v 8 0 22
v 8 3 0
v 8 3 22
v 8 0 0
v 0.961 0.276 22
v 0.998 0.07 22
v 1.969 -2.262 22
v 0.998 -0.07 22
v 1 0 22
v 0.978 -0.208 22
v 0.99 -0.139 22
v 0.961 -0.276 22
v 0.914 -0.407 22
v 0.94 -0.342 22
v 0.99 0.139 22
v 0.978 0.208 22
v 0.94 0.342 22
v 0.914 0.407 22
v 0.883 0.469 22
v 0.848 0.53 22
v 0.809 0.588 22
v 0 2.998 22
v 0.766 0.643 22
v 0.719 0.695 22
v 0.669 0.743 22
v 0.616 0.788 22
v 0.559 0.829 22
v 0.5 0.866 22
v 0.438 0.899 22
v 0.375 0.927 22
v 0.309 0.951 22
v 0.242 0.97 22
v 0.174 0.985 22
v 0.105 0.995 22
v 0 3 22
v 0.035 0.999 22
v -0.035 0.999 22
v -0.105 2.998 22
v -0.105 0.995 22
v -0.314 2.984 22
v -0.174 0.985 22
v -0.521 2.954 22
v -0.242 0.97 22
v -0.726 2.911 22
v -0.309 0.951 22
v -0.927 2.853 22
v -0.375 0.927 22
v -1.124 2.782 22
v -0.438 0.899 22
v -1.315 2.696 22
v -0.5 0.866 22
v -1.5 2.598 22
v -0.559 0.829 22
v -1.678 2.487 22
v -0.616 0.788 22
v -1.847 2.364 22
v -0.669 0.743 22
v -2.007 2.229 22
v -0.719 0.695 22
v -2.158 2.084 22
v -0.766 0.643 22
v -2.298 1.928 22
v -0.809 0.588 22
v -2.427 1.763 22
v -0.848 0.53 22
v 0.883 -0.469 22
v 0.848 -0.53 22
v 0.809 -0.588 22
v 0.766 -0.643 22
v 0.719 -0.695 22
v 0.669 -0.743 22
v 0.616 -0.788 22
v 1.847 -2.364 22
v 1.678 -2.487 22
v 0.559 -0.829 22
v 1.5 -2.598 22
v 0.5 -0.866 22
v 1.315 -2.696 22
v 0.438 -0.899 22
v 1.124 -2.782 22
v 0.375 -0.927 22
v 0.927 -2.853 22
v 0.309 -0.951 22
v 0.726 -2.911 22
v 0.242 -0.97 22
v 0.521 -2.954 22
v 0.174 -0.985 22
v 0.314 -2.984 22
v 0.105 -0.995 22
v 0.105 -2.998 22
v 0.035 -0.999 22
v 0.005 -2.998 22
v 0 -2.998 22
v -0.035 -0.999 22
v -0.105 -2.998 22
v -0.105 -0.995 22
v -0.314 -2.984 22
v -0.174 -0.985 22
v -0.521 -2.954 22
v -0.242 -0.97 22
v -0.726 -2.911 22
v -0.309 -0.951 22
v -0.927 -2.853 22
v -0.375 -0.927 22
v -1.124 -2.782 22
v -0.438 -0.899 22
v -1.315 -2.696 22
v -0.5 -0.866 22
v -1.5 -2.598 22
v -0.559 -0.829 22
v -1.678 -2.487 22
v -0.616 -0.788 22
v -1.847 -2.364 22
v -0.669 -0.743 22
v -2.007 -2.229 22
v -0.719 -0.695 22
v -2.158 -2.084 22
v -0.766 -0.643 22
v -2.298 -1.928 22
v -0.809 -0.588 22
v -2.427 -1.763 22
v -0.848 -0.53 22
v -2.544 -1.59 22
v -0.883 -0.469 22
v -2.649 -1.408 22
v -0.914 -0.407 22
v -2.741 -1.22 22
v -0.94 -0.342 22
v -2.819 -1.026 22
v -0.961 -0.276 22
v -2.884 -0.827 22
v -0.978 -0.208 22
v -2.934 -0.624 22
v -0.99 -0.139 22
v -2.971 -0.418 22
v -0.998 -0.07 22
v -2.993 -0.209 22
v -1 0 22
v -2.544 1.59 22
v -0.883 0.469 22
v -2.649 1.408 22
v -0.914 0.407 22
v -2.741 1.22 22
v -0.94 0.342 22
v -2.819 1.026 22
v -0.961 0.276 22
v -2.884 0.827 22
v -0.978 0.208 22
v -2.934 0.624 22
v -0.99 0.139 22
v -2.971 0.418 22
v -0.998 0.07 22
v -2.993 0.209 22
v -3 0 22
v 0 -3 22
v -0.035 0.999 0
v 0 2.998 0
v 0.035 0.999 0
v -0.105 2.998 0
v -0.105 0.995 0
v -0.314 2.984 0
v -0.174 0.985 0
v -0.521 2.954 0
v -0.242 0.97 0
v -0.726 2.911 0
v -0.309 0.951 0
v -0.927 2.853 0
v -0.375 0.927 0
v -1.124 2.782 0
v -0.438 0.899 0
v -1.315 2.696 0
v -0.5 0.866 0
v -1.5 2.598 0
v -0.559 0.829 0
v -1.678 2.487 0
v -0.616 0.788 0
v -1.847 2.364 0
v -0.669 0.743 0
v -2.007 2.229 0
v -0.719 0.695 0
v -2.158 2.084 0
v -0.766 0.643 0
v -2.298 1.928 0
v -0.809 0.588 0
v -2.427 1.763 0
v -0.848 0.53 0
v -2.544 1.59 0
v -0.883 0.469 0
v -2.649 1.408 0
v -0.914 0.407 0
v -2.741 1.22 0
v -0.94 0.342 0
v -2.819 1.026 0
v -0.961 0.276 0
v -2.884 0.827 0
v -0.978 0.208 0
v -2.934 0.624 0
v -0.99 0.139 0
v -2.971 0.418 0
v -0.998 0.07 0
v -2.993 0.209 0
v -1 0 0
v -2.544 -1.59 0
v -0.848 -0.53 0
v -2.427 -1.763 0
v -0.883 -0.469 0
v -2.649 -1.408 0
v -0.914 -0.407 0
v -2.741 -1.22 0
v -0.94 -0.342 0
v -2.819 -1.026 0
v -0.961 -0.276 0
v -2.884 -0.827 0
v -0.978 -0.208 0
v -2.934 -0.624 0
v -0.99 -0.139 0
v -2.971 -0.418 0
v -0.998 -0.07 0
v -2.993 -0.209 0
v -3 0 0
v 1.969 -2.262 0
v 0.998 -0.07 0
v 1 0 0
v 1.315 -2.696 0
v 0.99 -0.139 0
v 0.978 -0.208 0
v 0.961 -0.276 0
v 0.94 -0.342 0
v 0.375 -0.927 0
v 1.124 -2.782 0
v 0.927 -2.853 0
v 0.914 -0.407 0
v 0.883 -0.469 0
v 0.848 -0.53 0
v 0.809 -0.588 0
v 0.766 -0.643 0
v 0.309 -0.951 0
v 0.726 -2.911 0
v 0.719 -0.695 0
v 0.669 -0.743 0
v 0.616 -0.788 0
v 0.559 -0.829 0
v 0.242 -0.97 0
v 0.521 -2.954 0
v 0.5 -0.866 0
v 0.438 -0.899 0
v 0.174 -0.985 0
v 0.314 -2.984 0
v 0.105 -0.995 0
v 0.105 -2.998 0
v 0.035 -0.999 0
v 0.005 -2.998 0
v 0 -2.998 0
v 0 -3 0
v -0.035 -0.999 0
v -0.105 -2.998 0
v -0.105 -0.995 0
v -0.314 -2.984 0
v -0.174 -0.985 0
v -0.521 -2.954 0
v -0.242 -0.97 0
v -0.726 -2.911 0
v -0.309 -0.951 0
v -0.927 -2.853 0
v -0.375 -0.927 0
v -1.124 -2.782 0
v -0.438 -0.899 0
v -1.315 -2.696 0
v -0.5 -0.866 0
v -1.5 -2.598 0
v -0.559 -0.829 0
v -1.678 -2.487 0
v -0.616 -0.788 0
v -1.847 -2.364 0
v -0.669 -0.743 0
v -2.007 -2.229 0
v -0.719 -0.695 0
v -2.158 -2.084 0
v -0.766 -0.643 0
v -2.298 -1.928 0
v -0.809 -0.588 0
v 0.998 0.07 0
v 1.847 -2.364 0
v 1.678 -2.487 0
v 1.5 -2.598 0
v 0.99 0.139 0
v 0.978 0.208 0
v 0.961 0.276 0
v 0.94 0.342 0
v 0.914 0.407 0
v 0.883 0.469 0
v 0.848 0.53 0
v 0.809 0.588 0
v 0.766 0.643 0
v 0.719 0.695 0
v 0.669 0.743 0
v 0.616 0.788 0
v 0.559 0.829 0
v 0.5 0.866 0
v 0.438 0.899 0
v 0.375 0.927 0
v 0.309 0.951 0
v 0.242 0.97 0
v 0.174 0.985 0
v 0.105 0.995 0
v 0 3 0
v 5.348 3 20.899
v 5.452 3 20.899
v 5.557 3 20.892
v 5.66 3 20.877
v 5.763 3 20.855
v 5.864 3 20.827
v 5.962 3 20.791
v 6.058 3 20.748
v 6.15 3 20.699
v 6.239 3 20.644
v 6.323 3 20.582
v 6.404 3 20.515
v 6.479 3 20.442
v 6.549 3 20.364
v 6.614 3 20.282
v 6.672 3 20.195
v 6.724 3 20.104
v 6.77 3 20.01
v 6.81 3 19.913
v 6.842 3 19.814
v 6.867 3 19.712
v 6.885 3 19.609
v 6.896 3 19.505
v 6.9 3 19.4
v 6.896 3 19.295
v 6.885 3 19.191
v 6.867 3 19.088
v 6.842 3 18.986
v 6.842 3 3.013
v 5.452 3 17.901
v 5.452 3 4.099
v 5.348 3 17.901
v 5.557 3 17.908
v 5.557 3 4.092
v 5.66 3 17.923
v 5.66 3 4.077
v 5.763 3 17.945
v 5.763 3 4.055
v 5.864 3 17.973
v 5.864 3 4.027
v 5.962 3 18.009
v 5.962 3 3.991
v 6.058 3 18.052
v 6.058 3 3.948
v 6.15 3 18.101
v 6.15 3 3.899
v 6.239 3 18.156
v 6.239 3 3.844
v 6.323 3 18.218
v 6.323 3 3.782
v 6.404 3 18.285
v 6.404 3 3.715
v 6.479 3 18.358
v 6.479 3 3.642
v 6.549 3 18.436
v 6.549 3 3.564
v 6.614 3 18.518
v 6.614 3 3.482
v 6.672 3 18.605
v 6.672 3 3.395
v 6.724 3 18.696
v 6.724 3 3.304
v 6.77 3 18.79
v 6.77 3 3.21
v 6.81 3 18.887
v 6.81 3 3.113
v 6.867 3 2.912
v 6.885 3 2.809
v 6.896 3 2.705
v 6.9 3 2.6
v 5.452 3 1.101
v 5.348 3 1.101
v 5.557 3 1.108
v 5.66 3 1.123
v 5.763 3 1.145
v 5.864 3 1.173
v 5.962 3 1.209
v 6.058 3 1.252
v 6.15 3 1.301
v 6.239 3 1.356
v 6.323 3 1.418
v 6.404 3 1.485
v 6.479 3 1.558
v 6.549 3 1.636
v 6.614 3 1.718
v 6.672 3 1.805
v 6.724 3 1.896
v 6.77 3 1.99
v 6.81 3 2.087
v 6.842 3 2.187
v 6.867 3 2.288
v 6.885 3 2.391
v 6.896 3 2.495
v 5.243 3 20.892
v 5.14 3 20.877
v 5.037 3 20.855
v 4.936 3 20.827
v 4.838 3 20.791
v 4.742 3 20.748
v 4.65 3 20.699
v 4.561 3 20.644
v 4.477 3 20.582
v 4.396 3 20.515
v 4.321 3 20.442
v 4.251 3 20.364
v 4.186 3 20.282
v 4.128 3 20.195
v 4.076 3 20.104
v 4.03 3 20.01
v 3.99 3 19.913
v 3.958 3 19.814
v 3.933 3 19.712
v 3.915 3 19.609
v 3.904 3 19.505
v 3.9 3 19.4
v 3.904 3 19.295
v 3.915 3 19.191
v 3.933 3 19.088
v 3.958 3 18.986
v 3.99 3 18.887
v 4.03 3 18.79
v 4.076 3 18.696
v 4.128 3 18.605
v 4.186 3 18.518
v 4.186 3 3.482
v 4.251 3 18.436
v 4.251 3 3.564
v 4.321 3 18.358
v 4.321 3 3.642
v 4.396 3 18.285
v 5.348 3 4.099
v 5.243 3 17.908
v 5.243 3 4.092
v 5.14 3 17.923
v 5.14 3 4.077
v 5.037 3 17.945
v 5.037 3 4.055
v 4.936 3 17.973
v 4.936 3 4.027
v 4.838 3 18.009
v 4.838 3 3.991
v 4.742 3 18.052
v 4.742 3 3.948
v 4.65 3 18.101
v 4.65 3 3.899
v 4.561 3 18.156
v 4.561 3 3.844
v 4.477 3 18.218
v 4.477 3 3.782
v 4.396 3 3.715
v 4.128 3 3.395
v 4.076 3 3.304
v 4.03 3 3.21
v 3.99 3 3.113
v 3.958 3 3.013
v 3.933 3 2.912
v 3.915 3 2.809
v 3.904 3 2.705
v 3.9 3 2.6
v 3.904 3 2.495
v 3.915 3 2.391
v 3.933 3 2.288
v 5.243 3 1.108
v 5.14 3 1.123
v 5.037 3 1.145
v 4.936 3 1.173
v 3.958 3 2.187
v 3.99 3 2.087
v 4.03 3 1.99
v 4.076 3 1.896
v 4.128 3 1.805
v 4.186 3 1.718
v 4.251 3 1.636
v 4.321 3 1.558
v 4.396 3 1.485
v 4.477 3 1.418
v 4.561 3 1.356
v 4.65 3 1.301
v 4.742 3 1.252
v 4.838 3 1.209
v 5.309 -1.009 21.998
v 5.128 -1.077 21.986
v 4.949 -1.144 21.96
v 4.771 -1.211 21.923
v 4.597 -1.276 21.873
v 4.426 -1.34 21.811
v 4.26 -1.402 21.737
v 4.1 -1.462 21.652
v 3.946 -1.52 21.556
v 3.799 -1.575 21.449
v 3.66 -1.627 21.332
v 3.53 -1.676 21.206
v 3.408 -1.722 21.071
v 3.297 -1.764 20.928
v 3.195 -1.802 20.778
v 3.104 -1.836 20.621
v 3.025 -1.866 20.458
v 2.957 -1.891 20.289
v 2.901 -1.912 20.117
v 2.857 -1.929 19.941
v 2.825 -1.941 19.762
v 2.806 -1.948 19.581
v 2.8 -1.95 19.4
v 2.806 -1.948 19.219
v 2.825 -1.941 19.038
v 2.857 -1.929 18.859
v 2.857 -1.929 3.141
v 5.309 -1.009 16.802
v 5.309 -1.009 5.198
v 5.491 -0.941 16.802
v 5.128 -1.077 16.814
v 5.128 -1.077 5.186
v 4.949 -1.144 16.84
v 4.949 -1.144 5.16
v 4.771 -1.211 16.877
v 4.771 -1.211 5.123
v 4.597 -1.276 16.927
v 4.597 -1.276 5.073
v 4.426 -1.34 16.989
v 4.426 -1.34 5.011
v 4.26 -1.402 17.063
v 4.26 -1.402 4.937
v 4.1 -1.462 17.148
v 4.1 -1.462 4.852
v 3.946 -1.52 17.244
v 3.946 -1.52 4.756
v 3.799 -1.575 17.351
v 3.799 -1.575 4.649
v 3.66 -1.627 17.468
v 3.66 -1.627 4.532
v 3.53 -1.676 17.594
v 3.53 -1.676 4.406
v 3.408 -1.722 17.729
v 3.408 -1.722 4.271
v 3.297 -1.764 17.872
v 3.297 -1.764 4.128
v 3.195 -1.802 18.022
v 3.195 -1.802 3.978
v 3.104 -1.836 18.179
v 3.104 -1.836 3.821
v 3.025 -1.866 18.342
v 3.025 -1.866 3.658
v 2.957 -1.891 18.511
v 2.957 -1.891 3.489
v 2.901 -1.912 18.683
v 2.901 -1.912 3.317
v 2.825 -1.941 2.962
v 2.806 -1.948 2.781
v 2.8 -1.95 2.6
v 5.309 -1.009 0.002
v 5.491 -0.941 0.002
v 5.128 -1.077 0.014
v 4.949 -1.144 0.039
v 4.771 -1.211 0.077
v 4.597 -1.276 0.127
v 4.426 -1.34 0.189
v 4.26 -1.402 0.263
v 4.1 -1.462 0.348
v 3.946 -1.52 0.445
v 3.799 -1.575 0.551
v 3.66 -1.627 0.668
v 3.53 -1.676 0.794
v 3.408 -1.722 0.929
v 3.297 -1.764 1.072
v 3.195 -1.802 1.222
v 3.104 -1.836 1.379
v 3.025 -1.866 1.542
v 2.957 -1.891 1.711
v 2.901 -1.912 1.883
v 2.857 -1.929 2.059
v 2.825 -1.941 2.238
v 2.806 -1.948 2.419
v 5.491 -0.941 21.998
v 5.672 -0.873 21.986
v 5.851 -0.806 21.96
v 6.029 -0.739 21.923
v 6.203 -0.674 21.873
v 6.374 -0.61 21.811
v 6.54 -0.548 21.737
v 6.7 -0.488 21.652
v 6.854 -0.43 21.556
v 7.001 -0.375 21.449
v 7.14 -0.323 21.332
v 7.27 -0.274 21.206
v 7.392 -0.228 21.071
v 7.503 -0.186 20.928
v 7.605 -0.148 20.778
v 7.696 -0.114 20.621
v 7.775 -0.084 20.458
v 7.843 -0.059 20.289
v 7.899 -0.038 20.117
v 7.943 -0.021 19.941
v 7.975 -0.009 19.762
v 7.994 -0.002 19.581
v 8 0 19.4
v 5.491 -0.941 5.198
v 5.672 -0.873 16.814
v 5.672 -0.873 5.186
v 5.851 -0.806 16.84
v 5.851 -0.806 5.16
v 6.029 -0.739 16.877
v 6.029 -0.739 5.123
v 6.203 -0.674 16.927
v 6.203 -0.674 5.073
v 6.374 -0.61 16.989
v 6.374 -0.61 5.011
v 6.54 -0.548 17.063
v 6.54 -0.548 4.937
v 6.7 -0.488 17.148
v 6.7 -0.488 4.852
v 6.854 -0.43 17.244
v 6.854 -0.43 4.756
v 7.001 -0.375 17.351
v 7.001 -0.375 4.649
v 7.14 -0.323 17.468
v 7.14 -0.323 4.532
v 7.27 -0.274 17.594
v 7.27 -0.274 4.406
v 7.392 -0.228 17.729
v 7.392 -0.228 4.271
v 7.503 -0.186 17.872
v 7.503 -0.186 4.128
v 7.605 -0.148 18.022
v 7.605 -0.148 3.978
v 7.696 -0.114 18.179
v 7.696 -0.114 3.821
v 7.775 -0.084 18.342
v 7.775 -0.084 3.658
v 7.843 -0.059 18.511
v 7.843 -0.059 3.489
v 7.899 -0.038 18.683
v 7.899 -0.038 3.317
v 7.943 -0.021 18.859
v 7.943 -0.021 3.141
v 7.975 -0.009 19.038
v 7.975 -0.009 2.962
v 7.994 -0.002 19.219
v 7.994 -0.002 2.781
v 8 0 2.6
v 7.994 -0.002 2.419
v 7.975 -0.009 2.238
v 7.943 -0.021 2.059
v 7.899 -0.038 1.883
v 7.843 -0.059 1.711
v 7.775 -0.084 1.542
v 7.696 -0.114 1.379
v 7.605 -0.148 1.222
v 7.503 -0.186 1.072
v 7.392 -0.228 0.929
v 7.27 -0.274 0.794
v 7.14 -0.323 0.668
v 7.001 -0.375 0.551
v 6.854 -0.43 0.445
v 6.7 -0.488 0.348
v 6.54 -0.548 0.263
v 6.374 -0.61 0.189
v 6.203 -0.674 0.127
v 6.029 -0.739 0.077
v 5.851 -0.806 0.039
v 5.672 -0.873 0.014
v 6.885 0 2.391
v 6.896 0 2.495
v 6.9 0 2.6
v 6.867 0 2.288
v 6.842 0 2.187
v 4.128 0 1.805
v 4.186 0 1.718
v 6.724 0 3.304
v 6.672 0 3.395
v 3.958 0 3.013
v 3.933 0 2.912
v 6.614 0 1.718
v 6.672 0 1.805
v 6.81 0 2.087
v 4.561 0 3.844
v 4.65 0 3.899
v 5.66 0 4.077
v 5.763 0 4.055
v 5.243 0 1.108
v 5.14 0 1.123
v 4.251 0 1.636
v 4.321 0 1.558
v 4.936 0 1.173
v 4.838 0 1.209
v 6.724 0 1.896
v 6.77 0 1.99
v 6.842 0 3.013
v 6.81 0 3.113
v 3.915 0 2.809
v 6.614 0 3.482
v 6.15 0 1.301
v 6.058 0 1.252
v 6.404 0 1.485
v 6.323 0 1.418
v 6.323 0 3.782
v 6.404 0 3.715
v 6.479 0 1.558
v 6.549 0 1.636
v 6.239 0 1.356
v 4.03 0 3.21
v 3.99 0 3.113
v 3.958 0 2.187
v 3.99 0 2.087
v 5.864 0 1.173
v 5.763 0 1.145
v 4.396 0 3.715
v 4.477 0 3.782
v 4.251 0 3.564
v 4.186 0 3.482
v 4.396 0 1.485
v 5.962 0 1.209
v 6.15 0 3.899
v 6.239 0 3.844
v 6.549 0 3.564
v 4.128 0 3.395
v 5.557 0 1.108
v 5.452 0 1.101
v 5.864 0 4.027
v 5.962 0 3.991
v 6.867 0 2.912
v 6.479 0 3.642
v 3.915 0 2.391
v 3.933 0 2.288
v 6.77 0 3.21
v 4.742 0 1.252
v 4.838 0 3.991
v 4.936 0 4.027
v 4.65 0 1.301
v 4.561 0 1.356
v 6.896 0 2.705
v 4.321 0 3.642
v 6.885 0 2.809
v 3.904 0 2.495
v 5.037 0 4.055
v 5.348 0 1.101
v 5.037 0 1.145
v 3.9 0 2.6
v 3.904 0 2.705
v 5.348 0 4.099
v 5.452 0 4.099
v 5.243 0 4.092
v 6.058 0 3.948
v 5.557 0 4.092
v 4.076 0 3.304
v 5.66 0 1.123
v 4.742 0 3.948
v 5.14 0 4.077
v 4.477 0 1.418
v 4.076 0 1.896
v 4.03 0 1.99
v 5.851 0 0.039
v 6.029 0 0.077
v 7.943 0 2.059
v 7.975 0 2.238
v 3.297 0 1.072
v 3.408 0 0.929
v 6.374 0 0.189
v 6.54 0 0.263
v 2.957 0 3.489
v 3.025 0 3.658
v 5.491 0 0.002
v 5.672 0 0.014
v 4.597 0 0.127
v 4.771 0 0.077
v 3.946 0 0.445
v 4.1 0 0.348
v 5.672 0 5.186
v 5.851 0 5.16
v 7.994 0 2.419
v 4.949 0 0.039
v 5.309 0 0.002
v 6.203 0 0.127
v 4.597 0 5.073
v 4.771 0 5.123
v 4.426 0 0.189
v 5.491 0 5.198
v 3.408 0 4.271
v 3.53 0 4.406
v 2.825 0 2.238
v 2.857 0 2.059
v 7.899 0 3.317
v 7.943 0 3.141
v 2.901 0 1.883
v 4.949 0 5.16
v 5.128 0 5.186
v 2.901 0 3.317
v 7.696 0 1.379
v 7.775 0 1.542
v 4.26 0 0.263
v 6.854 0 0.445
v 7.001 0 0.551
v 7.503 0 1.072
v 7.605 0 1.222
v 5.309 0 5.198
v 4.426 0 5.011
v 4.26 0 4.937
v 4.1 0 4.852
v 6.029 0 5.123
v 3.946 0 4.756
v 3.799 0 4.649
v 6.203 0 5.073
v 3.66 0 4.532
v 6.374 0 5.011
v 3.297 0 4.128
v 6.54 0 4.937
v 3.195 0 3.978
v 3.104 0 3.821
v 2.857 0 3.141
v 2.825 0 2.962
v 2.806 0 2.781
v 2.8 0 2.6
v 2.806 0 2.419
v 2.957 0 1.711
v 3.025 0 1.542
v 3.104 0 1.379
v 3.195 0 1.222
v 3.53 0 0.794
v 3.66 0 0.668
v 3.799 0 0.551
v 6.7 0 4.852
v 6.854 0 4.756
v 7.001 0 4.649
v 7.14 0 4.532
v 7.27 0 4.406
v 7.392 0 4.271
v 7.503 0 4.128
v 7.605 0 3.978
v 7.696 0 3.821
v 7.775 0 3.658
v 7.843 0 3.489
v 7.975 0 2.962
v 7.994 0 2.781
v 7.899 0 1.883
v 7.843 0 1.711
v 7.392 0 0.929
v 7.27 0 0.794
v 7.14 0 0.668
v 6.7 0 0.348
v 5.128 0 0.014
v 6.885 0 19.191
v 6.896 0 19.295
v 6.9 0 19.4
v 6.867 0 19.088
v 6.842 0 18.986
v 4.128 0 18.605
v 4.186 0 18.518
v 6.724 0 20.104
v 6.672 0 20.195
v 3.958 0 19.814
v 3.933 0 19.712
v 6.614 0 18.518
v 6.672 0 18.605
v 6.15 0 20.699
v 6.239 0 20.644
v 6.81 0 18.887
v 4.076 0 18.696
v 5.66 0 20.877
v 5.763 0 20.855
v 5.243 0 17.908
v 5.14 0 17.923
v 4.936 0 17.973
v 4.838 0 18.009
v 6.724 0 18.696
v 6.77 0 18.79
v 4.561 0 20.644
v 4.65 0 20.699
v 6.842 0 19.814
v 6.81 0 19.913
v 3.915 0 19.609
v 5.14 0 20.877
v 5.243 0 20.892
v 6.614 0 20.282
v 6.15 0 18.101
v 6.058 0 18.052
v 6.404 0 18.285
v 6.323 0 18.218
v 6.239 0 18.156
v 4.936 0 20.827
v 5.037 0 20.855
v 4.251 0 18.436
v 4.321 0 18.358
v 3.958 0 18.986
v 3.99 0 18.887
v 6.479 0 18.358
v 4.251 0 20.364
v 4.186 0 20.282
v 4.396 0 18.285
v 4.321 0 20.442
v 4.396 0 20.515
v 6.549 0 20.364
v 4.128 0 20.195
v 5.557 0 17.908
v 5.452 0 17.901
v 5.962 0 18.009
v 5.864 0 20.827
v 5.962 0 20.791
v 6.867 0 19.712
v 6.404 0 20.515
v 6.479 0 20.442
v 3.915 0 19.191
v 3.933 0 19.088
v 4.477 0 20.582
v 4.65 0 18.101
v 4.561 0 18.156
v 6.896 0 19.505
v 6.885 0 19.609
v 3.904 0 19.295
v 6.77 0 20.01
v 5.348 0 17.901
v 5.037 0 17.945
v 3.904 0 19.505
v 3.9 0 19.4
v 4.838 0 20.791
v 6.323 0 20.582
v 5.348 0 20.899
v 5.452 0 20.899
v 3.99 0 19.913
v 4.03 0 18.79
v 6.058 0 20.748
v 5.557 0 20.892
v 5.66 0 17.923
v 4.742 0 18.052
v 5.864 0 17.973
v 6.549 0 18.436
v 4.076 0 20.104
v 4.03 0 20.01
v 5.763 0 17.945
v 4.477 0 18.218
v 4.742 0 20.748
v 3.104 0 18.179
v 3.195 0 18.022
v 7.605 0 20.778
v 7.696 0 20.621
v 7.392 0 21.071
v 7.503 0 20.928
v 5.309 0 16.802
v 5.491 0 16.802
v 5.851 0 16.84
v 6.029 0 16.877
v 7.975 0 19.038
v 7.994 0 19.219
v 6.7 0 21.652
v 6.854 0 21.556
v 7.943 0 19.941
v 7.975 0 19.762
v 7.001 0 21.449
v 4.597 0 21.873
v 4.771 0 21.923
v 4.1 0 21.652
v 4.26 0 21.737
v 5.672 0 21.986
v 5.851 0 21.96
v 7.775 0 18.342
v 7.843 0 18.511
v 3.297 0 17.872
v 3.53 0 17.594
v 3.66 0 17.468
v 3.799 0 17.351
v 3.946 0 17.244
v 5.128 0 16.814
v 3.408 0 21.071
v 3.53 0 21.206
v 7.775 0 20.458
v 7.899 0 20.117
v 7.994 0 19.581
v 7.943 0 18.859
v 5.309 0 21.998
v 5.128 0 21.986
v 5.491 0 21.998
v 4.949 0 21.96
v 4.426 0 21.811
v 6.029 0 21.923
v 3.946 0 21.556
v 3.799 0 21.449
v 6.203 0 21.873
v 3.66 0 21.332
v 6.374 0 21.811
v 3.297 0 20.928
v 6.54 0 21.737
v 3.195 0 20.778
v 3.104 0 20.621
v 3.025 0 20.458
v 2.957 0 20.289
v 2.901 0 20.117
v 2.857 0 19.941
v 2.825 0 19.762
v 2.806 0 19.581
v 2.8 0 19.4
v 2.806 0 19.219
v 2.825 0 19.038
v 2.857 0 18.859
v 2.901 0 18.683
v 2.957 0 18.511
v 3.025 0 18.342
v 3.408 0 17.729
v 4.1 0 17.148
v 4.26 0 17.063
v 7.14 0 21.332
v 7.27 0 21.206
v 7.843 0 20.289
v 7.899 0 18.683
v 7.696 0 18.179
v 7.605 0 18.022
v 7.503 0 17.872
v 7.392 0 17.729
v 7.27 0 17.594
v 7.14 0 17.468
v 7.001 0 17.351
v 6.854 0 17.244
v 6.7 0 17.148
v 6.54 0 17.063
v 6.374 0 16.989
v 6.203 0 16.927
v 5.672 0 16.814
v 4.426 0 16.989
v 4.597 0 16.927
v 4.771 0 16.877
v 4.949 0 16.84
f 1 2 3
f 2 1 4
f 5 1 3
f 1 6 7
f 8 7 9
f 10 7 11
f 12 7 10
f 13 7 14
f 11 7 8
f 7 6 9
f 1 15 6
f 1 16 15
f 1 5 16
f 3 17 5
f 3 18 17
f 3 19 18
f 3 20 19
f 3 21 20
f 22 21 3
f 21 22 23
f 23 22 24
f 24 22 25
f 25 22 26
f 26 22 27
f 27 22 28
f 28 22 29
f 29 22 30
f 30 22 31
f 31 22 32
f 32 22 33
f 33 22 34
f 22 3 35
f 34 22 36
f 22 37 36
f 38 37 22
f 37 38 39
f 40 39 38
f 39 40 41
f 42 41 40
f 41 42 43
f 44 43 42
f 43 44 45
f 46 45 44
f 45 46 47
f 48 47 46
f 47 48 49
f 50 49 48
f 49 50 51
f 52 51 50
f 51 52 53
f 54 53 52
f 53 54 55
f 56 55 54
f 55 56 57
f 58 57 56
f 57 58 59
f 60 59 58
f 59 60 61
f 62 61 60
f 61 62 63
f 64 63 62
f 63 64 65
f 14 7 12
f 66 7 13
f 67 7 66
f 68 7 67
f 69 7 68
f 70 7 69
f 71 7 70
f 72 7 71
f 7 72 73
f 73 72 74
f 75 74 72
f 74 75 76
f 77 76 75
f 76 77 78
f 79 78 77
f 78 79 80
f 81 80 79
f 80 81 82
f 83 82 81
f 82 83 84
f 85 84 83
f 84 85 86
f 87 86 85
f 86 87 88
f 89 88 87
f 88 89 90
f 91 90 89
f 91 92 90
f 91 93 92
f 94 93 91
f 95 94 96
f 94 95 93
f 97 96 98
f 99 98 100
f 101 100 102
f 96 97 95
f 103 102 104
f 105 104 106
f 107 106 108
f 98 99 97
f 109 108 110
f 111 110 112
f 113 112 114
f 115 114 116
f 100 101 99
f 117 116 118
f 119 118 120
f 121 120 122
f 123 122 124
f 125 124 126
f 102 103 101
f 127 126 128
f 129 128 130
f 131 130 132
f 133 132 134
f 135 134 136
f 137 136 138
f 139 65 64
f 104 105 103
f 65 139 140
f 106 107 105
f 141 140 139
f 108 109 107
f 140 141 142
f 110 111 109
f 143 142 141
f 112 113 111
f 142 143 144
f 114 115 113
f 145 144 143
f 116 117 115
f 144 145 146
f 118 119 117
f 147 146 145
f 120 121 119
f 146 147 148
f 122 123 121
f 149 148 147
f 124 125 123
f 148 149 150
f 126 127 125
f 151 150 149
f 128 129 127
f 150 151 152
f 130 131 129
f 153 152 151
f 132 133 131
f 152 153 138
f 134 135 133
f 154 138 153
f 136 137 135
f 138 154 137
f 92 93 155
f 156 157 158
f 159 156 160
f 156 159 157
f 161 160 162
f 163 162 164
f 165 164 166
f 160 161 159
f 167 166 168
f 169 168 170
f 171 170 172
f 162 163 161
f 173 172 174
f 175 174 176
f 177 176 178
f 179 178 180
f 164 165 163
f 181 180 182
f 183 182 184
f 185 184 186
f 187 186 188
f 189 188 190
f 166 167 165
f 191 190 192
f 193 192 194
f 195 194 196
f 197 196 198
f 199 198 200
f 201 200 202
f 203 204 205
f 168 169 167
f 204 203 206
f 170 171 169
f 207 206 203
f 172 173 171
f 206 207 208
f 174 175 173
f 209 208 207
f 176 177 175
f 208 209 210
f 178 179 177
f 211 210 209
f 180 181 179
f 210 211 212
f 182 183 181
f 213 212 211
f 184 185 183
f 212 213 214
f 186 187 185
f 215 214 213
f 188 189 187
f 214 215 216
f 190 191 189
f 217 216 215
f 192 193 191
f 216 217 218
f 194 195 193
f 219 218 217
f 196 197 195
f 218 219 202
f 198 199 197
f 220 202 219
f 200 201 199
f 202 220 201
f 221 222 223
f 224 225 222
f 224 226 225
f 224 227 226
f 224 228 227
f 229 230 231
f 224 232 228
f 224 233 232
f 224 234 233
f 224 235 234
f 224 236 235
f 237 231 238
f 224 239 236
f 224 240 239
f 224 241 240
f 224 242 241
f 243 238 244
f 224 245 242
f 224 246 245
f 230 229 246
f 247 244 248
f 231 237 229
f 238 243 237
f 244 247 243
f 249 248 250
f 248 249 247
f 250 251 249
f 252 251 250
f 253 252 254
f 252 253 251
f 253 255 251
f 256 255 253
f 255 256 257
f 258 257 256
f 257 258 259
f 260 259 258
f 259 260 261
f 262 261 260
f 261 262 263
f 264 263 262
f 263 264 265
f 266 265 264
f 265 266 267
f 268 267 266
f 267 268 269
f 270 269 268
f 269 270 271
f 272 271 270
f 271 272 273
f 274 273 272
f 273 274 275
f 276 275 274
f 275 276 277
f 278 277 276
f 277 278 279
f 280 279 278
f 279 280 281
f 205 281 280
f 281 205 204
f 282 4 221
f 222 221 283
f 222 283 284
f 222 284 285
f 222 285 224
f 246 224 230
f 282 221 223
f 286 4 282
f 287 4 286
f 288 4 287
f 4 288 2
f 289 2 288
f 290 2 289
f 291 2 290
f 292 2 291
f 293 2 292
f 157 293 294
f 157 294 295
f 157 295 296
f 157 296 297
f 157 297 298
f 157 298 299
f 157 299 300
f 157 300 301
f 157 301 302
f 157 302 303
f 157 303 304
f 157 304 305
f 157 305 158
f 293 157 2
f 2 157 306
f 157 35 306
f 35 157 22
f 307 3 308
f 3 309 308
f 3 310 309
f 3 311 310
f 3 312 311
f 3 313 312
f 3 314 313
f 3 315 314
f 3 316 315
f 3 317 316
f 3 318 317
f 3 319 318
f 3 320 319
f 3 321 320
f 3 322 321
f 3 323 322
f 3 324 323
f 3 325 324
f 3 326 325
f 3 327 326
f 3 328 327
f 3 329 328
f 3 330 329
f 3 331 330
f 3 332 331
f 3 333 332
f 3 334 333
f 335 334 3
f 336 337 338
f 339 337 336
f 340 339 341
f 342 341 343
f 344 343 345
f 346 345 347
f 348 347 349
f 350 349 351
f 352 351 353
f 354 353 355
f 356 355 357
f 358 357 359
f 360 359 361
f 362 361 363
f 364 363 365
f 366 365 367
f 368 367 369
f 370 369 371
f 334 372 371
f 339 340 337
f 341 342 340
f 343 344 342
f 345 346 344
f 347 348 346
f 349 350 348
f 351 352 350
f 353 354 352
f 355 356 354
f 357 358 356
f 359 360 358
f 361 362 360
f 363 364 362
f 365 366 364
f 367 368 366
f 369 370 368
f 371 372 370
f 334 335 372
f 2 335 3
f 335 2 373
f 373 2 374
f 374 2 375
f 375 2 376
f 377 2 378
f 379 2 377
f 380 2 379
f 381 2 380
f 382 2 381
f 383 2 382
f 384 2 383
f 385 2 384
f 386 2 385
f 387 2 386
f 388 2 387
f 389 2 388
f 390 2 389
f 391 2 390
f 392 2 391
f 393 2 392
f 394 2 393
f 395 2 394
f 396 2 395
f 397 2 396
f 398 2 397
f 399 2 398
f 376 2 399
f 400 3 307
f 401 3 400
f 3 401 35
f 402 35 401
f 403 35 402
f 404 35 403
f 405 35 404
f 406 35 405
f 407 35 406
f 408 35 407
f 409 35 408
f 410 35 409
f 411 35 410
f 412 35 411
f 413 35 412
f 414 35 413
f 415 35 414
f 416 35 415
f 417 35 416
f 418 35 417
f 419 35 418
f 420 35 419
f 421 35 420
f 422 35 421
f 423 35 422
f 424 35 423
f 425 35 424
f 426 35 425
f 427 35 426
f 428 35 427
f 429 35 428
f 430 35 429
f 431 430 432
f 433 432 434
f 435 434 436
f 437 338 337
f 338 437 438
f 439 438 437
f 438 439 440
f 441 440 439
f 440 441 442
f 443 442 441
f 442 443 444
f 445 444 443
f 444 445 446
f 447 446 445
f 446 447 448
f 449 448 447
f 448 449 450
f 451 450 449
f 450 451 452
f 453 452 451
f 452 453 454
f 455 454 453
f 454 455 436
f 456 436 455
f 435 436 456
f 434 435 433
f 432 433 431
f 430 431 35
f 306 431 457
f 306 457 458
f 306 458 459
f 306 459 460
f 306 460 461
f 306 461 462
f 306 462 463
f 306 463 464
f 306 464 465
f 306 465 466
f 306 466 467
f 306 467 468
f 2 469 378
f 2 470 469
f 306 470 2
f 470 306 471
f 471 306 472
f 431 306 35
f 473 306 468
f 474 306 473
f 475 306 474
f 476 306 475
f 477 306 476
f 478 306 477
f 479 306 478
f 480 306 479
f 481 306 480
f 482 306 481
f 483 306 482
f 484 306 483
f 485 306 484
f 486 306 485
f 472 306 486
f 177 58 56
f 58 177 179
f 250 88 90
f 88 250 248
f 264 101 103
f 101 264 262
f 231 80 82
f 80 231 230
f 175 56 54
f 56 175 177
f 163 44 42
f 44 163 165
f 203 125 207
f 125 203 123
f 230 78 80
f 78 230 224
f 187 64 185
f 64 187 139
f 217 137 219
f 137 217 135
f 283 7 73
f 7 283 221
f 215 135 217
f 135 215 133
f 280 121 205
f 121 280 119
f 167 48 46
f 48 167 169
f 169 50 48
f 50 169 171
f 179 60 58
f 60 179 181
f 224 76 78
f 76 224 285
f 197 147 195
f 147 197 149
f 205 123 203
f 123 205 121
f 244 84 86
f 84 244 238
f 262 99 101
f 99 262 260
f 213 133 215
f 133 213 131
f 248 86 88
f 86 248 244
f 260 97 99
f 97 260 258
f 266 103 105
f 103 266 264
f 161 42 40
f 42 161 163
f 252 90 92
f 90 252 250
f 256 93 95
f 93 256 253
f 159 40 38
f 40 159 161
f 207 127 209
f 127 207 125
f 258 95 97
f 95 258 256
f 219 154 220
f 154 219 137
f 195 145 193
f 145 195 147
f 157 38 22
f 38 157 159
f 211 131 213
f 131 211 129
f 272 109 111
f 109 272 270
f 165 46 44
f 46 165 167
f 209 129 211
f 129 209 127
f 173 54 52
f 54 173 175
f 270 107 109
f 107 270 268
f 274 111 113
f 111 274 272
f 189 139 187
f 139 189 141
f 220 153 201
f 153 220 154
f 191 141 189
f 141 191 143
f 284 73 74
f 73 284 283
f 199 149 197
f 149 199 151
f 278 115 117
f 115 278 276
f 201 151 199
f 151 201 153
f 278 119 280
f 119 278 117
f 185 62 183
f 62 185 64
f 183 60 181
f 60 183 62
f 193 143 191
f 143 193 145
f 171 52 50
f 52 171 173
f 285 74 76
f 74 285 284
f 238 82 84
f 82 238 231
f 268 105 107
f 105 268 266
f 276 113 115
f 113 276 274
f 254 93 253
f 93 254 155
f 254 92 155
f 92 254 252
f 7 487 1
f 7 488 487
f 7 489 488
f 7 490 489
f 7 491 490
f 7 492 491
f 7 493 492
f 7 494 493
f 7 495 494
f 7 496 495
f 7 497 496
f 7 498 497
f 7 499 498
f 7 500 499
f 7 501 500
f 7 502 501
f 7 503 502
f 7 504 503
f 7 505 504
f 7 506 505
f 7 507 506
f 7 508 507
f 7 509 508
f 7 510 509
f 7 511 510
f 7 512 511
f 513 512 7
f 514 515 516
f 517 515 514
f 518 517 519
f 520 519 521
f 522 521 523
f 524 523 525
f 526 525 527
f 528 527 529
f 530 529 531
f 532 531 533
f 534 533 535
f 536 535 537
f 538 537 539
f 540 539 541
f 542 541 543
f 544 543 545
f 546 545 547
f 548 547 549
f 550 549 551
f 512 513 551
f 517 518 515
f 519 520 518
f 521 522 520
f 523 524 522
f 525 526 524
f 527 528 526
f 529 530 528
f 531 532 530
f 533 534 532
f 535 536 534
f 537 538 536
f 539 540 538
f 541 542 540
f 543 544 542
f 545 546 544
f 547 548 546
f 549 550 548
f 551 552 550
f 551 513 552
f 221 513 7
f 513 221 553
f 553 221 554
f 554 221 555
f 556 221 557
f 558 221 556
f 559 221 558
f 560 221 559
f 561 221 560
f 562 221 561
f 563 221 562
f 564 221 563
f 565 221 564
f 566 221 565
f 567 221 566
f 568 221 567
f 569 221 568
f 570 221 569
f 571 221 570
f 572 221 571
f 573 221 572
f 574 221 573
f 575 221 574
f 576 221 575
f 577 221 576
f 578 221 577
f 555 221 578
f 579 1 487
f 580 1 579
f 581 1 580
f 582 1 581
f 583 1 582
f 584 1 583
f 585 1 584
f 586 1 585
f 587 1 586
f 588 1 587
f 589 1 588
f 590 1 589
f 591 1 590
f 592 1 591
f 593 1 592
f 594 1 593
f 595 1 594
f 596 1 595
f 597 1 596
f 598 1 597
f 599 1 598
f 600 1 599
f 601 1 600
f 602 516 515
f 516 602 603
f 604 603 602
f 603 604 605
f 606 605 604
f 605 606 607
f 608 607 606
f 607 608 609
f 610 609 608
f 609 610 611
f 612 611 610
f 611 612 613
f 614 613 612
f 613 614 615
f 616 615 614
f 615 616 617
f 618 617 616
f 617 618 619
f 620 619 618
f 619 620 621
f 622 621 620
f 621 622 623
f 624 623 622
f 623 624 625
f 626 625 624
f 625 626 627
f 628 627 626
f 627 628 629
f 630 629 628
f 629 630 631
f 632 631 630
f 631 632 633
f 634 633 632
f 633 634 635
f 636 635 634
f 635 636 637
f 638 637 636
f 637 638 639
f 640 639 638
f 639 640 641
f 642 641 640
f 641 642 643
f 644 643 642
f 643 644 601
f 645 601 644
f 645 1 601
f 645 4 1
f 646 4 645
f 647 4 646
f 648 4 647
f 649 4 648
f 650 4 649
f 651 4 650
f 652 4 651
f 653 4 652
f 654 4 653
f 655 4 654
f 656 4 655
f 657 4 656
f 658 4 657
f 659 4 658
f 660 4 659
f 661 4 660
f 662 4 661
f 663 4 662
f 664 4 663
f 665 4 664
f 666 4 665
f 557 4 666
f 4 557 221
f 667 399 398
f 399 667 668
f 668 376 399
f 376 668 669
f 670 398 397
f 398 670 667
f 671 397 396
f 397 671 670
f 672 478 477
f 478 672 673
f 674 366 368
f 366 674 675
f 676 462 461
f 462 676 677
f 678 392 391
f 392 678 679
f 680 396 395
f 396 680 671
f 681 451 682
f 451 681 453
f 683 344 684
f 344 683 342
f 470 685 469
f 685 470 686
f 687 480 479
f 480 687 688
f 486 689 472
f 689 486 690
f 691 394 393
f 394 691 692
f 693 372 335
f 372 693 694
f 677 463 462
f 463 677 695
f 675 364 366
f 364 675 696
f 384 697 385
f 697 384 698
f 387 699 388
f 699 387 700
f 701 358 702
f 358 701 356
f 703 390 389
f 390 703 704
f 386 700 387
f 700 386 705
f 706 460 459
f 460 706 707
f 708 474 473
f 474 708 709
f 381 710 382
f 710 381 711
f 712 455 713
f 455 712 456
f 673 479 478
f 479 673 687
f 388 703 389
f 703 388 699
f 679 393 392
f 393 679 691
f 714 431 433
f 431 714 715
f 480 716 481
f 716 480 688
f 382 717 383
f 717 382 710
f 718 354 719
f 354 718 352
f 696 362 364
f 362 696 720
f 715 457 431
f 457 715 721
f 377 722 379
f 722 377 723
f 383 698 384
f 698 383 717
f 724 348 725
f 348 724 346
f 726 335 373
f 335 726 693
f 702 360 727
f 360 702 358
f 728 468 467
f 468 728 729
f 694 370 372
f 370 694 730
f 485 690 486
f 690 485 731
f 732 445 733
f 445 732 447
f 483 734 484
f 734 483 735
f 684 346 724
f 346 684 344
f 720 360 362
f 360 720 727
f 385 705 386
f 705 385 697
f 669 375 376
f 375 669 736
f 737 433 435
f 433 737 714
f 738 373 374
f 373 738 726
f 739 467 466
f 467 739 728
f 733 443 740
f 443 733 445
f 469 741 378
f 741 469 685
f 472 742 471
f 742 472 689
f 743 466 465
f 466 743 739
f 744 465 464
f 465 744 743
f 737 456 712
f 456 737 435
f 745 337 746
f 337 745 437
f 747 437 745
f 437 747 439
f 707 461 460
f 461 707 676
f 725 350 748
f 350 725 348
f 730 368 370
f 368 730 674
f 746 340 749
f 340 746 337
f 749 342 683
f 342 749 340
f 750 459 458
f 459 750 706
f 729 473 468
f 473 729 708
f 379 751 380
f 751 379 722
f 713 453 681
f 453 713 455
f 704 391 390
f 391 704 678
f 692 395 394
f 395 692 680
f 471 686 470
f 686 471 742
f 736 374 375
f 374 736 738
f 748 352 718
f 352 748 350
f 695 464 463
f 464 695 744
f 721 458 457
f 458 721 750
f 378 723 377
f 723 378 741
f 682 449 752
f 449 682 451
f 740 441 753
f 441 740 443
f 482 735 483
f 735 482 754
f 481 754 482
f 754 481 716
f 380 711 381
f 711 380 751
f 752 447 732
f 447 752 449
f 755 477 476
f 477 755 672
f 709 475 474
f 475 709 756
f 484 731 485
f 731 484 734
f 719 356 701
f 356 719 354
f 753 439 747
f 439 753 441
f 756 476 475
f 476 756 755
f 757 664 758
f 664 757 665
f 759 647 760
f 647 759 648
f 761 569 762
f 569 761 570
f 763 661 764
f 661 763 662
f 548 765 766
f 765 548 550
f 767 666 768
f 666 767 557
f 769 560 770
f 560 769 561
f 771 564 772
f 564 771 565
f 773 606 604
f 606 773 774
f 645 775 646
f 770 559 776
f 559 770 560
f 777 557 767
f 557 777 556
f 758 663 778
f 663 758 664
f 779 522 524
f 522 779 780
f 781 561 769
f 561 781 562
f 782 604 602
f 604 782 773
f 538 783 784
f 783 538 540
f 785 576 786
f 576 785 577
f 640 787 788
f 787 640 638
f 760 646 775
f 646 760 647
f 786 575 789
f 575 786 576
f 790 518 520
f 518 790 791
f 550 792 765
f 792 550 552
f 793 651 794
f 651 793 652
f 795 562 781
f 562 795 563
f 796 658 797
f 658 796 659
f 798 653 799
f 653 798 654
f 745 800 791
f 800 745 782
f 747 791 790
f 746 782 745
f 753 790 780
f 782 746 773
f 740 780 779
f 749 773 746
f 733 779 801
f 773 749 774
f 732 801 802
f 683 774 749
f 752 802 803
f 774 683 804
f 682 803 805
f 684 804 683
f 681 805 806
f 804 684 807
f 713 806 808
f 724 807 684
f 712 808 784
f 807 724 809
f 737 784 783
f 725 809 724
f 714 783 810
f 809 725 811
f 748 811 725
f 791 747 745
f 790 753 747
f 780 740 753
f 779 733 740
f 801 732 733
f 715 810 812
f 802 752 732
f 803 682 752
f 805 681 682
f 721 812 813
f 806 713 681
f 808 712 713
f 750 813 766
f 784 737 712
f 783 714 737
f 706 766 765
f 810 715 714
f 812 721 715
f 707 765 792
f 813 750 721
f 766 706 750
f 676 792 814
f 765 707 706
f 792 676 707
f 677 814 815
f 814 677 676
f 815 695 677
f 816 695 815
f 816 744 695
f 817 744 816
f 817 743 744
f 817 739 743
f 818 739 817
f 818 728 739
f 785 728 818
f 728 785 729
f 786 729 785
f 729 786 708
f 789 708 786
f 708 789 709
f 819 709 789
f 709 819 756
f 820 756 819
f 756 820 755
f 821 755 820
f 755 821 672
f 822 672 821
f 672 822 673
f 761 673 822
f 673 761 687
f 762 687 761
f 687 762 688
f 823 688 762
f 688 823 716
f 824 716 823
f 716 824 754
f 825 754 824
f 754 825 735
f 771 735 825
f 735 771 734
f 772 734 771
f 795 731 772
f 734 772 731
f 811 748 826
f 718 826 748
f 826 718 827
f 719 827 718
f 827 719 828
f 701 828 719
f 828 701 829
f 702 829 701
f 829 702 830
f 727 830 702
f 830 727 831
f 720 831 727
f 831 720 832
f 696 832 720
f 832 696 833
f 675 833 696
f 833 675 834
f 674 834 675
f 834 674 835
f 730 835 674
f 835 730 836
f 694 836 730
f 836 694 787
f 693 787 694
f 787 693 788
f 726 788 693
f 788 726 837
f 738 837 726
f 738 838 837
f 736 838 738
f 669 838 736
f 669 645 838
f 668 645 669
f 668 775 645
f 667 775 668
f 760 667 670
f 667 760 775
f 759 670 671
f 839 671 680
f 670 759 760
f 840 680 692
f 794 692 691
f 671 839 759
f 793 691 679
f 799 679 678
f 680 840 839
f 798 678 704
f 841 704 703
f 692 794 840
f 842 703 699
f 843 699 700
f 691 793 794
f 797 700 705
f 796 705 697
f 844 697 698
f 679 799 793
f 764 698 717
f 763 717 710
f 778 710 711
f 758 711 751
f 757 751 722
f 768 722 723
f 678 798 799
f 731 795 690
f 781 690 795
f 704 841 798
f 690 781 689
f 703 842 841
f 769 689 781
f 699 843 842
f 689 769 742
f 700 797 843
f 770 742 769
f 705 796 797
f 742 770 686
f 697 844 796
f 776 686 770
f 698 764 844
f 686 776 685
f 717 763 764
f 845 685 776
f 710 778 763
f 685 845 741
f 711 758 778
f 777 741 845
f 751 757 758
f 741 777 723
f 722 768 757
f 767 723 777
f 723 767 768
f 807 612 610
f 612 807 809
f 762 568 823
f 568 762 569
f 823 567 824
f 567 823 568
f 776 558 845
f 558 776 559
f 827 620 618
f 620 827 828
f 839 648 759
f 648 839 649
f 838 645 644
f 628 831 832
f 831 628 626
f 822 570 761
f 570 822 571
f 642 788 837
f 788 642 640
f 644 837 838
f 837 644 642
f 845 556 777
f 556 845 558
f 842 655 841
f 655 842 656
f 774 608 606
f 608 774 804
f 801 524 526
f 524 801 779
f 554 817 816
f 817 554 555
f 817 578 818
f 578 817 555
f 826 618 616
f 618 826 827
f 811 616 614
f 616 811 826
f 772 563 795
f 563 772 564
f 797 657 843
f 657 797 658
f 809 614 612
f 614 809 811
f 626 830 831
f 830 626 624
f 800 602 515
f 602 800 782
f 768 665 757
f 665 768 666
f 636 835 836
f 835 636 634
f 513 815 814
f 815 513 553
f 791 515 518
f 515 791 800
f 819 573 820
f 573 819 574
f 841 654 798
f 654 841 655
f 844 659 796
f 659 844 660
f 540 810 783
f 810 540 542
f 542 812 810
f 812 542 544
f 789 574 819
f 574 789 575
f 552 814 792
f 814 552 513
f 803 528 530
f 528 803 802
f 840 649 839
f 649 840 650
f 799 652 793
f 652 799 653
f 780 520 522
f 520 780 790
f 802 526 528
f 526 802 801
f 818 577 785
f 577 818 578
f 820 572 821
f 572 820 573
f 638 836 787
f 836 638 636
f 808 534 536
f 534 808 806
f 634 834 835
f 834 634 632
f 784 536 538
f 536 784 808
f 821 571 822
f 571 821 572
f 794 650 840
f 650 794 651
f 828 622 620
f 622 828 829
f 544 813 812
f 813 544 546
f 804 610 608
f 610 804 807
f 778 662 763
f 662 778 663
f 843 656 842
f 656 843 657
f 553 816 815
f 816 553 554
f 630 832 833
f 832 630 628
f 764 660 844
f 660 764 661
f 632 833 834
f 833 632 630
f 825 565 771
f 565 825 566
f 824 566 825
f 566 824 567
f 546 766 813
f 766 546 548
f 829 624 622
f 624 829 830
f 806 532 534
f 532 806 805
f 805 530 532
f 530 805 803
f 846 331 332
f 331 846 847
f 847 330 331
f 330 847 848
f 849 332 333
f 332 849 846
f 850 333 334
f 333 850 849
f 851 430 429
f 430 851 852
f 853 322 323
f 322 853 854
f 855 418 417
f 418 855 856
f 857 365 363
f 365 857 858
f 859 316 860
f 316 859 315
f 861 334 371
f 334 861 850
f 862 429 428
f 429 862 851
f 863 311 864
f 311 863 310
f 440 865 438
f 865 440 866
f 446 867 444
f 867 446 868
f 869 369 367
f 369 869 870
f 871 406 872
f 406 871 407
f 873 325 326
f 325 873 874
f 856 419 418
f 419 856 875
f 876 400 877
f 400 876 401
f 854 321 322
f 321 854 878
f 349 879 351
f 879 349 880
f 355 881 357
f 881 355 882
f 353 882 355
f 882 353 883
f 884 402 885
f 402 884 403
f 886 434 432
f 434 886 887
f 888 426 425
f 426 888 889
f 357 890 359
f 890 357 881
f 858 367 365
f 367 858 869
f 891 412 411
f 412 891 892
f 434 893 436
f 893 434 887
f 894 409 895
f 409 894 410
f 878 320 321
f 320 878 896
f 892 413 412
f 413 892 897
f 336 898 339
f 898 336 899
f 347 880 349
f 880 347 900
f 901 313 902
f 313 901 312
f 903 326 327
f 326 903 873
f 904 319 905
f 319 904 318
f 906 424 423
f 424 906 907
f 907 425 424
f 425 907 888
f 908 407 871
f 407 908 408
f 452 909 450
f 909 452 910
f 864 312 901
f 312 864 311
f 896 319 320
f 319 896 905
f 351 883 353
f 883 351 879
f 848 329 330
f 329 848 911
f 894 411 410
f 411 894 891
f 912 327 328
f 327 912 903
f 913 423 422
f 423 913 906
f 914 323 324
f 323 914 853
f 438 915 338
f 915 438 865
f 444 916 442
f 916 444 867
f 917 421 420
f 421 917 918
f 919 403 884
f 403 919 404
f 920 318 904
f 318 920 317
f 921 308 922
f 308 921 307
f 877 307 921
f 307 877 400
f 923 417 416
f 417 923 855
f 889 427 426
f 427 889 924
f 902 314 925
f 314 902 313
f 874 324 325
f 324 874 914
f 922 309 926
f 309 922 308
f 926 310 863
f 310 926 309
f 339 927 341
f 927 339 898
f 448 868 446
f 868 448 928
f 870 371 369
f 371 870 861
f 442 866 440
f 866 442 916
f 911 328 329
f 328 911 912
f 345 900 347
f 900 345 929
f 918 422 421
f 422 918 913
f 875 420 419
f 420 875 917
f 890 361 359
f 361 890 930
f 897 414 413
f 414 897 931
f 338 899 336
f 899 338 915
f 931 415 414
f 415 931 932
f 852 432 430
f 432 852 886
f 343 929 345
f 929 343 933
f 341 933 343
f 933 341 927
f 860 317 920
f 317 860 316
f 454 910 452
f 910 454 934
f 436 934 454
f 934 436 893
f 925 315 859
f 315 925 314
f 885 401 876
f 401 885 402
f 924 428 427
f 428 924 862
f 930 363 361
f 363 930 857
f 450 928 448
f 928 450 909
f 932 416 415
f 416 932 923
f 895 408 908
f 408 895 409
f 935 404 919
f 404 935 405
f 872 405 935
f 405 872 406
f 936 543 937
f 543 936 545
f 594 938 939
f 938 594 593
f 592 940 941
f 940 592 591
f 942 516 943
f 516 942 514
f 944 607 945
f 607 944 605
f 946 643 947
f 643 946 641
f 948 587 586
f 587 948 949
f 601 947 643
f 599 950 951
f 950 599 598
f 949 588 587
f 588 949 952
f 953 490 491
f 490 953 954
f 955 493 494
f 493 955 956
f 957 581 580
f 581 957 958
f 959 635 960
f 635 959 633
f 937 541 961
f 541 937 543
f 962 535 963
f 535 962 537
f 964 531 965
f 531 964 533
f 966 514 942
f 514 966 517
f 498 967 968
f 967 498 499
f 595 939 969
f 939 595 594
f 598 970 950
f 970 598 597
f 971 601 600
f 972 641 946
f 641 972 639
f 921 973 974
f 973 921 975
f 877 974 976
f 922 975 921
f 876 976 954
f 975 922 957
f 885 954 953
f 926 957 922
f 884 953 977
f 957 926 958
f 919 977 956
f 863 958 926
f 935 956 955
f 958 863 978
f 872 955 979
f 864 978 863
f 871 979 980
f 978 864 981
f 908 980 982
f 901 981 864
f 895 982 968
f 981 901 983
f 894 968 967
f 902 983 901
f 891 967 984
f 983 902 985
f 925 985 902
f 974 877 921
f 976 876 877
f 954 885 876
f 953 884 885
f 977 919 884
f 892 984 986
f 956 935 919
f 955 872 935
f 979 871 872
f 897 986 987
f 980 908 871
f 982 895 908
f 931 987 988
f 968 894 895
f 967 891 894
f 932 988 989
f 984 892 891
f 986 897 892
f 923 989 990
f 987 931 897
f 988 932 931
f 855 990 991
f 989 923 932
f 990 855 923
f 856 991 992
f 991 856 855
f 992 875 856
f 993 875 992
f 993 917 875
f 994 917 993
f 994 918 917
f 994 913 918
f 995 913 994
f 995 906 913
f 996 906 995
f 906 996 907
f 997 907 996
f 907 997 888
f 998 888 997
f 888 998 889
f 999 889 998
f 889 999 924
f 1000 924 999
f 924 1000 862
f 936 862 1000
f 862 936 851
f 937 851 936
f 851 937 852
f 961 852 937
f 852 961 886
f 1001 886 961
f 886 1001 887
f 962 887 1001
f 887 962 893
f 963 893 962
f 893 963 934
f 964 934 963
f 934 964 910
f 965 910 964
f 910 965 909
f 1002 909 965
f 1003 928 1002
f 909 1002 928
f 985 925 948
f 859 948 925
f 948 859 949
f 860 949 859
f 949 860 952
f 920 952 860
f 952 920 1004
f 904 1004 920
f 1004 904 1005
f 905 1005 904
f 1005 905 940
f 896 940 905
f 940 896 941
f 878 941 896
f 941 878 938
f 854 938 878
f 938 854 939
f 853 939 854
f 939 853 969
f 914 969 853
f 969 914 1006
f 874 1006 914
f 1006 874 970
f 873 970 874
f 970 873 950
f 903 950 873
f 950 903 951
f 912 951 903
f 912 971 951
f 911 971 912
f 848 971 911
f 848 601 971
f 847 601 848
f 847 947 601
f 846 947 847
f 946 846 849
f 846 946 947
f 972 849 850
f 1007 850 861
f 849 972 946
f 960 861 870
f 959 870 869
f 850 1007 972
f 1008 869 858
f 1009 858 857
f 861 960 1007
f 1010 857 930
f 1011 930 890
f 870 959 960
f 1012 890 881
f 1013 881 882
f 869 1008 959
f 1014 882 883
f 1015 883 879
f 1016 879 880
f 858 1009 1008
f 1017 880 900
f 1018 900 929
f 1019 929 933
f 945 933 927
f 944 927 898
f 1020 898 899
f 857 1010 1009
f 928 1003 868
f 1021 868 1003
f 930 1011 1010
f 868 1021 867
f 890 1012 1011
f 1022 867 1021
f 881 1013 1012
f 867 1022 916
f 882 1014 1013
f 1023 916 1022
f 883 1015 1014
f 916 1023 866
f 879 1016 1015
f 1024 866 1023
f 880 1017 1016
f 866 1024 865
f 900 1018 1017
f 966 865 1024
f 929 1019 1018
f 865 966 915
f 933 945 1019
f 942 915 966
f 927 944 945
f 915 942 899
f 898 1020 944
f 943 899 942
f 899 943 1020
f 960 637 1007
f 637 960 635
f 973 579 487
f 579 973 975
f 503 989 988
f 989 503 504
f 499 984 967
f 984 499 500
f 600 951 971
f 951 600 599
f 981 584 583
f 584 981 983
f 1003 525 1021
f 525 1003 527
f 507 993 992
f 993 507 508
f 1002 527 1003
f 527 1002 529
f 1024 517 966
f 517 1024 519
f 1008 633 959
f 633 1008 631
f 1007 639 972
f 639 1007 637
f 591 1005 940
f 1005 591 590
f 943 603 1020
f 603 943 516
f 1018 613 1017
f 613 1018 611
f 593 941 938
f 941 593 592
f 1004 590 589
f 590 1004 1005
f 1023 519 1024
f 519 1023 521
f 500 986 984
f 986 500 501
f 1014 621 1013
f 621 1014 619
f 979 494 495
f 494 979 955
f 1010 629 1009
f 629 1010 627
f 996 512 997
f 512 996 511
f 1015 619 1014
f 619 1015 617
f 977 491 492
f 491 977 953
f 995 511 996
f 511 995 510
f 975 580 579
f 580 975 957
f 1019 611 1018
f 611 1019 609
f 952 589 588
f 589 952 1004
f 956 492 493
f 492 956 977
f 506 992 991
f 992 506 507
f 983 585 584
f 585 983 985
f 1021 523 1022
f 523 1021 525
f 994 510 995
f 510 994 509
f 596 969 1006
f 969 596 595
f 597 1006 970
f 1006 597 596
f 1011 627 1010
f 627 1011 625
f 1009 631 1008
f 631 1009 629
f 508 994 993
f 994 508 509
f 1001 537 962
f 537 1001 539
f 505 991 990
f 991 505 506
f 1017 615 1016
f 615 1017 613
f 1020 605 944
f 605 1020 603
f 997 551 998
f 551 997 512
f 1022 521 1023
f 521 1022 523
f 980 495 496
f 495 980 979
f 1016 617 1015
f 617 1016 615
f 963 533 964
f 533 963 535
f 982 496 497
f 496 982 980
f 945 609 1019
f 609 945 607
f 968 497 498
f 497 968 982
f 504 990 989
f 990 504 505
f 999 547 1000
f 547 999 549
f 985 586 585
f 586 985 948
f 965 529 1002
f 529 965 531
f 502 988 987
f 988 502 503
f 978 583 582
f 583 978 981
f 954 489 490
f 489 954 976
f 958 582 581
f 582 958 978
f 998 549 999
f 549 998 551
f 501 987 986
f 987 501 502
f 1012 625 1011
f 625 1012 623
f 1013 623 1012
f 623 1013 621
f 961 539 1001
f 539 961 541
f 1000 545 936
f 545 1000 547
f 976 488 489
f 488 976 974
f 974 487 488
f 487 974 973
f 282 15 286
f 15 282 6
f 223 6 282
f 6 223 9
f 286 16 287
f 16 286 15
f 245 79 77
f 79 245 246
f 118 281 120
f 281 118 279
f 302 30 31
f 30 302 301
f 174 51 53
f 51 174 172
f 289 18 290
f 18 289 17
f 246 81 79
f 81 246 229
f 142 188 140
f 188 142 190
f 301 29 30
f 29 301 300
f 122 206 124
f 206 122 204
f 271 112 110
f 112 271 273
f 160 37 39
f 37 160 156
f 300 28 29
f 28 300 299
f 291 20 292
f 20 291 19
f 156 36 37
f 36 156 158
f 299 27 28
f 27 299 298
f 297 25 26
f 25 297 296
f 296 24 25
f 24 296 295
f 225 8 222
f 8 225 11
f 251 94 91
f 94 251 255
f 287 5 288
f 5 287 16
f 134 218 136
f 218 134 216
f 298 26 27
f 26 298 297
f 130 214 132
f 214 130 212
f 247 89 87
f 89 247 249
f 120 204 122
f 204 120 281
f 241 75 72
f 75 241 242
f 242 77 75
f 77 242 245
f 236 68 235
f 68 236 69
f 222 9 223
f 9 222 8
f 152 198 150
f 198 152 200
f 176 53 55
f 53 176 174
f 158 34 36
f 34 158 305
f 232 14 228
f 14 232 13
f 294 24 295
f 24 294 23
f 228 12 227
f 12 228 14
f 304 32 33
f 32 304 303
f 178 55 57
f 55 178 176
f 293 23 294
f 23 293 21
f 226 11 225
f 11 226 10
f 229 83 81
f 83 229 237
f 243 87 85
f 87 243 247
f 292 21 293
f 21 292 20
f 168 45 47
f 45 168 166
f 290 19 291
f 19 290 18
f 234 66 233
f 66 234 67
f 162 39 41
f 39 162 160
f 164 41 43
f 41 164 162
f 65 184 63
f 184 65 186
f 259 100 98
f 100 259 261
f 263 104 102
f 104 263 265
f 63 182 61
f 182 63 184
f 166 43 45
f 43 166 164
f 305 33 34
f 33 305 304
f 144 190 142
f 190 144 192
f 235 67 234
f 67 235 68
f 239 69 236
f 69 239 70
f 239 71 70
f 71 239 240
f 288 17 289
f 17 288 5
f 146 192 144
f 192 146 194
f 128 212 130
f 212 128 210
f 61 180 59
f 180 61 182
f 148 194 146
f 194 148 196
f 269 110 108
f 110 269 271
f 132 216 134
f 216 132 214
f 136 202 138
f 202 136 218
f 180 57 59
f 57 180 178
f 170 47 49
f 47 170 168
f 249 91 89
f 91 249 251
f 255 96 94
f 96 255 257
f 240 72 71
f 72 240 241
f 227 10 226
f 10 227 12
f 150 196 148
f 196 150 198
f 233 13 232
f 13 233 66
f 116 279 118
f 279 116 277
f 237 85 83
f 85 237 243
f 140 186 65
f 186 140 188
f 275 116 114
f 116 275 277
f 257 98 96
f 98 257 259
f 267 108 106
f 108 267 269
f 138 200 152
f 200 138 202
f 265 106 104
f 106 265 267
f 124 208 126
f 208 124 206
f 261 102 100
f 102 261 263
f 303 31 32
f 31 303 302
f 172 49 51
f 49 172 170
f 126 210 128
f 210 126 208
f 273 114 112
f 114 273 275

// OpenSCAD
$fn = 90;

//cube([])

length = 22;
width = 8;
cylinderInnerDiameter = 2;
cylinderOutterDiameter = cylinderInnerDiameter+4;
plateThickness = cylinderOutterDiameter / 2;

difference(){
	union(){
		cube([width, plateThickness, length]);
		cylinder(d=cylinderOutterDiameter, h=length);
		rotate([0, -90, 180])
			linear_extrude(height=width, scale=[1,0])
				square([length, plateThickness]);
	}
	#cylinder(d=cylinderInnerDiameter, h=length);
	/*translate([0, 0, length/2])
		#cylinder(d=cylinderOutterDiameter+1, h=length/2);*/
	
	//screw holes
	screwHoleDiameter = 3;
	screwHeadDiameter = 5.2;
	borderDistance = screwHeadDiameter/2;
	translate([width-borderDistance, -plateThickness, 0])
		rotate([-90,0,0]){
			translate([0, -borderDistance, 0]){
				#cylinder(d=screwHoleDiameter, h=cylinderOutterDiameter);
				#cylinder(d=screwHeadDiameter, h=plateThickness);
			}
			translate([0, -length+borderDistance, 0]){
				#cylinder(d=screwHoleDiameter, h=cylinderOutterDiameter);
				#cylinder(d=screwHeadDiameter, h=plateThickness);
			}
		}
}
